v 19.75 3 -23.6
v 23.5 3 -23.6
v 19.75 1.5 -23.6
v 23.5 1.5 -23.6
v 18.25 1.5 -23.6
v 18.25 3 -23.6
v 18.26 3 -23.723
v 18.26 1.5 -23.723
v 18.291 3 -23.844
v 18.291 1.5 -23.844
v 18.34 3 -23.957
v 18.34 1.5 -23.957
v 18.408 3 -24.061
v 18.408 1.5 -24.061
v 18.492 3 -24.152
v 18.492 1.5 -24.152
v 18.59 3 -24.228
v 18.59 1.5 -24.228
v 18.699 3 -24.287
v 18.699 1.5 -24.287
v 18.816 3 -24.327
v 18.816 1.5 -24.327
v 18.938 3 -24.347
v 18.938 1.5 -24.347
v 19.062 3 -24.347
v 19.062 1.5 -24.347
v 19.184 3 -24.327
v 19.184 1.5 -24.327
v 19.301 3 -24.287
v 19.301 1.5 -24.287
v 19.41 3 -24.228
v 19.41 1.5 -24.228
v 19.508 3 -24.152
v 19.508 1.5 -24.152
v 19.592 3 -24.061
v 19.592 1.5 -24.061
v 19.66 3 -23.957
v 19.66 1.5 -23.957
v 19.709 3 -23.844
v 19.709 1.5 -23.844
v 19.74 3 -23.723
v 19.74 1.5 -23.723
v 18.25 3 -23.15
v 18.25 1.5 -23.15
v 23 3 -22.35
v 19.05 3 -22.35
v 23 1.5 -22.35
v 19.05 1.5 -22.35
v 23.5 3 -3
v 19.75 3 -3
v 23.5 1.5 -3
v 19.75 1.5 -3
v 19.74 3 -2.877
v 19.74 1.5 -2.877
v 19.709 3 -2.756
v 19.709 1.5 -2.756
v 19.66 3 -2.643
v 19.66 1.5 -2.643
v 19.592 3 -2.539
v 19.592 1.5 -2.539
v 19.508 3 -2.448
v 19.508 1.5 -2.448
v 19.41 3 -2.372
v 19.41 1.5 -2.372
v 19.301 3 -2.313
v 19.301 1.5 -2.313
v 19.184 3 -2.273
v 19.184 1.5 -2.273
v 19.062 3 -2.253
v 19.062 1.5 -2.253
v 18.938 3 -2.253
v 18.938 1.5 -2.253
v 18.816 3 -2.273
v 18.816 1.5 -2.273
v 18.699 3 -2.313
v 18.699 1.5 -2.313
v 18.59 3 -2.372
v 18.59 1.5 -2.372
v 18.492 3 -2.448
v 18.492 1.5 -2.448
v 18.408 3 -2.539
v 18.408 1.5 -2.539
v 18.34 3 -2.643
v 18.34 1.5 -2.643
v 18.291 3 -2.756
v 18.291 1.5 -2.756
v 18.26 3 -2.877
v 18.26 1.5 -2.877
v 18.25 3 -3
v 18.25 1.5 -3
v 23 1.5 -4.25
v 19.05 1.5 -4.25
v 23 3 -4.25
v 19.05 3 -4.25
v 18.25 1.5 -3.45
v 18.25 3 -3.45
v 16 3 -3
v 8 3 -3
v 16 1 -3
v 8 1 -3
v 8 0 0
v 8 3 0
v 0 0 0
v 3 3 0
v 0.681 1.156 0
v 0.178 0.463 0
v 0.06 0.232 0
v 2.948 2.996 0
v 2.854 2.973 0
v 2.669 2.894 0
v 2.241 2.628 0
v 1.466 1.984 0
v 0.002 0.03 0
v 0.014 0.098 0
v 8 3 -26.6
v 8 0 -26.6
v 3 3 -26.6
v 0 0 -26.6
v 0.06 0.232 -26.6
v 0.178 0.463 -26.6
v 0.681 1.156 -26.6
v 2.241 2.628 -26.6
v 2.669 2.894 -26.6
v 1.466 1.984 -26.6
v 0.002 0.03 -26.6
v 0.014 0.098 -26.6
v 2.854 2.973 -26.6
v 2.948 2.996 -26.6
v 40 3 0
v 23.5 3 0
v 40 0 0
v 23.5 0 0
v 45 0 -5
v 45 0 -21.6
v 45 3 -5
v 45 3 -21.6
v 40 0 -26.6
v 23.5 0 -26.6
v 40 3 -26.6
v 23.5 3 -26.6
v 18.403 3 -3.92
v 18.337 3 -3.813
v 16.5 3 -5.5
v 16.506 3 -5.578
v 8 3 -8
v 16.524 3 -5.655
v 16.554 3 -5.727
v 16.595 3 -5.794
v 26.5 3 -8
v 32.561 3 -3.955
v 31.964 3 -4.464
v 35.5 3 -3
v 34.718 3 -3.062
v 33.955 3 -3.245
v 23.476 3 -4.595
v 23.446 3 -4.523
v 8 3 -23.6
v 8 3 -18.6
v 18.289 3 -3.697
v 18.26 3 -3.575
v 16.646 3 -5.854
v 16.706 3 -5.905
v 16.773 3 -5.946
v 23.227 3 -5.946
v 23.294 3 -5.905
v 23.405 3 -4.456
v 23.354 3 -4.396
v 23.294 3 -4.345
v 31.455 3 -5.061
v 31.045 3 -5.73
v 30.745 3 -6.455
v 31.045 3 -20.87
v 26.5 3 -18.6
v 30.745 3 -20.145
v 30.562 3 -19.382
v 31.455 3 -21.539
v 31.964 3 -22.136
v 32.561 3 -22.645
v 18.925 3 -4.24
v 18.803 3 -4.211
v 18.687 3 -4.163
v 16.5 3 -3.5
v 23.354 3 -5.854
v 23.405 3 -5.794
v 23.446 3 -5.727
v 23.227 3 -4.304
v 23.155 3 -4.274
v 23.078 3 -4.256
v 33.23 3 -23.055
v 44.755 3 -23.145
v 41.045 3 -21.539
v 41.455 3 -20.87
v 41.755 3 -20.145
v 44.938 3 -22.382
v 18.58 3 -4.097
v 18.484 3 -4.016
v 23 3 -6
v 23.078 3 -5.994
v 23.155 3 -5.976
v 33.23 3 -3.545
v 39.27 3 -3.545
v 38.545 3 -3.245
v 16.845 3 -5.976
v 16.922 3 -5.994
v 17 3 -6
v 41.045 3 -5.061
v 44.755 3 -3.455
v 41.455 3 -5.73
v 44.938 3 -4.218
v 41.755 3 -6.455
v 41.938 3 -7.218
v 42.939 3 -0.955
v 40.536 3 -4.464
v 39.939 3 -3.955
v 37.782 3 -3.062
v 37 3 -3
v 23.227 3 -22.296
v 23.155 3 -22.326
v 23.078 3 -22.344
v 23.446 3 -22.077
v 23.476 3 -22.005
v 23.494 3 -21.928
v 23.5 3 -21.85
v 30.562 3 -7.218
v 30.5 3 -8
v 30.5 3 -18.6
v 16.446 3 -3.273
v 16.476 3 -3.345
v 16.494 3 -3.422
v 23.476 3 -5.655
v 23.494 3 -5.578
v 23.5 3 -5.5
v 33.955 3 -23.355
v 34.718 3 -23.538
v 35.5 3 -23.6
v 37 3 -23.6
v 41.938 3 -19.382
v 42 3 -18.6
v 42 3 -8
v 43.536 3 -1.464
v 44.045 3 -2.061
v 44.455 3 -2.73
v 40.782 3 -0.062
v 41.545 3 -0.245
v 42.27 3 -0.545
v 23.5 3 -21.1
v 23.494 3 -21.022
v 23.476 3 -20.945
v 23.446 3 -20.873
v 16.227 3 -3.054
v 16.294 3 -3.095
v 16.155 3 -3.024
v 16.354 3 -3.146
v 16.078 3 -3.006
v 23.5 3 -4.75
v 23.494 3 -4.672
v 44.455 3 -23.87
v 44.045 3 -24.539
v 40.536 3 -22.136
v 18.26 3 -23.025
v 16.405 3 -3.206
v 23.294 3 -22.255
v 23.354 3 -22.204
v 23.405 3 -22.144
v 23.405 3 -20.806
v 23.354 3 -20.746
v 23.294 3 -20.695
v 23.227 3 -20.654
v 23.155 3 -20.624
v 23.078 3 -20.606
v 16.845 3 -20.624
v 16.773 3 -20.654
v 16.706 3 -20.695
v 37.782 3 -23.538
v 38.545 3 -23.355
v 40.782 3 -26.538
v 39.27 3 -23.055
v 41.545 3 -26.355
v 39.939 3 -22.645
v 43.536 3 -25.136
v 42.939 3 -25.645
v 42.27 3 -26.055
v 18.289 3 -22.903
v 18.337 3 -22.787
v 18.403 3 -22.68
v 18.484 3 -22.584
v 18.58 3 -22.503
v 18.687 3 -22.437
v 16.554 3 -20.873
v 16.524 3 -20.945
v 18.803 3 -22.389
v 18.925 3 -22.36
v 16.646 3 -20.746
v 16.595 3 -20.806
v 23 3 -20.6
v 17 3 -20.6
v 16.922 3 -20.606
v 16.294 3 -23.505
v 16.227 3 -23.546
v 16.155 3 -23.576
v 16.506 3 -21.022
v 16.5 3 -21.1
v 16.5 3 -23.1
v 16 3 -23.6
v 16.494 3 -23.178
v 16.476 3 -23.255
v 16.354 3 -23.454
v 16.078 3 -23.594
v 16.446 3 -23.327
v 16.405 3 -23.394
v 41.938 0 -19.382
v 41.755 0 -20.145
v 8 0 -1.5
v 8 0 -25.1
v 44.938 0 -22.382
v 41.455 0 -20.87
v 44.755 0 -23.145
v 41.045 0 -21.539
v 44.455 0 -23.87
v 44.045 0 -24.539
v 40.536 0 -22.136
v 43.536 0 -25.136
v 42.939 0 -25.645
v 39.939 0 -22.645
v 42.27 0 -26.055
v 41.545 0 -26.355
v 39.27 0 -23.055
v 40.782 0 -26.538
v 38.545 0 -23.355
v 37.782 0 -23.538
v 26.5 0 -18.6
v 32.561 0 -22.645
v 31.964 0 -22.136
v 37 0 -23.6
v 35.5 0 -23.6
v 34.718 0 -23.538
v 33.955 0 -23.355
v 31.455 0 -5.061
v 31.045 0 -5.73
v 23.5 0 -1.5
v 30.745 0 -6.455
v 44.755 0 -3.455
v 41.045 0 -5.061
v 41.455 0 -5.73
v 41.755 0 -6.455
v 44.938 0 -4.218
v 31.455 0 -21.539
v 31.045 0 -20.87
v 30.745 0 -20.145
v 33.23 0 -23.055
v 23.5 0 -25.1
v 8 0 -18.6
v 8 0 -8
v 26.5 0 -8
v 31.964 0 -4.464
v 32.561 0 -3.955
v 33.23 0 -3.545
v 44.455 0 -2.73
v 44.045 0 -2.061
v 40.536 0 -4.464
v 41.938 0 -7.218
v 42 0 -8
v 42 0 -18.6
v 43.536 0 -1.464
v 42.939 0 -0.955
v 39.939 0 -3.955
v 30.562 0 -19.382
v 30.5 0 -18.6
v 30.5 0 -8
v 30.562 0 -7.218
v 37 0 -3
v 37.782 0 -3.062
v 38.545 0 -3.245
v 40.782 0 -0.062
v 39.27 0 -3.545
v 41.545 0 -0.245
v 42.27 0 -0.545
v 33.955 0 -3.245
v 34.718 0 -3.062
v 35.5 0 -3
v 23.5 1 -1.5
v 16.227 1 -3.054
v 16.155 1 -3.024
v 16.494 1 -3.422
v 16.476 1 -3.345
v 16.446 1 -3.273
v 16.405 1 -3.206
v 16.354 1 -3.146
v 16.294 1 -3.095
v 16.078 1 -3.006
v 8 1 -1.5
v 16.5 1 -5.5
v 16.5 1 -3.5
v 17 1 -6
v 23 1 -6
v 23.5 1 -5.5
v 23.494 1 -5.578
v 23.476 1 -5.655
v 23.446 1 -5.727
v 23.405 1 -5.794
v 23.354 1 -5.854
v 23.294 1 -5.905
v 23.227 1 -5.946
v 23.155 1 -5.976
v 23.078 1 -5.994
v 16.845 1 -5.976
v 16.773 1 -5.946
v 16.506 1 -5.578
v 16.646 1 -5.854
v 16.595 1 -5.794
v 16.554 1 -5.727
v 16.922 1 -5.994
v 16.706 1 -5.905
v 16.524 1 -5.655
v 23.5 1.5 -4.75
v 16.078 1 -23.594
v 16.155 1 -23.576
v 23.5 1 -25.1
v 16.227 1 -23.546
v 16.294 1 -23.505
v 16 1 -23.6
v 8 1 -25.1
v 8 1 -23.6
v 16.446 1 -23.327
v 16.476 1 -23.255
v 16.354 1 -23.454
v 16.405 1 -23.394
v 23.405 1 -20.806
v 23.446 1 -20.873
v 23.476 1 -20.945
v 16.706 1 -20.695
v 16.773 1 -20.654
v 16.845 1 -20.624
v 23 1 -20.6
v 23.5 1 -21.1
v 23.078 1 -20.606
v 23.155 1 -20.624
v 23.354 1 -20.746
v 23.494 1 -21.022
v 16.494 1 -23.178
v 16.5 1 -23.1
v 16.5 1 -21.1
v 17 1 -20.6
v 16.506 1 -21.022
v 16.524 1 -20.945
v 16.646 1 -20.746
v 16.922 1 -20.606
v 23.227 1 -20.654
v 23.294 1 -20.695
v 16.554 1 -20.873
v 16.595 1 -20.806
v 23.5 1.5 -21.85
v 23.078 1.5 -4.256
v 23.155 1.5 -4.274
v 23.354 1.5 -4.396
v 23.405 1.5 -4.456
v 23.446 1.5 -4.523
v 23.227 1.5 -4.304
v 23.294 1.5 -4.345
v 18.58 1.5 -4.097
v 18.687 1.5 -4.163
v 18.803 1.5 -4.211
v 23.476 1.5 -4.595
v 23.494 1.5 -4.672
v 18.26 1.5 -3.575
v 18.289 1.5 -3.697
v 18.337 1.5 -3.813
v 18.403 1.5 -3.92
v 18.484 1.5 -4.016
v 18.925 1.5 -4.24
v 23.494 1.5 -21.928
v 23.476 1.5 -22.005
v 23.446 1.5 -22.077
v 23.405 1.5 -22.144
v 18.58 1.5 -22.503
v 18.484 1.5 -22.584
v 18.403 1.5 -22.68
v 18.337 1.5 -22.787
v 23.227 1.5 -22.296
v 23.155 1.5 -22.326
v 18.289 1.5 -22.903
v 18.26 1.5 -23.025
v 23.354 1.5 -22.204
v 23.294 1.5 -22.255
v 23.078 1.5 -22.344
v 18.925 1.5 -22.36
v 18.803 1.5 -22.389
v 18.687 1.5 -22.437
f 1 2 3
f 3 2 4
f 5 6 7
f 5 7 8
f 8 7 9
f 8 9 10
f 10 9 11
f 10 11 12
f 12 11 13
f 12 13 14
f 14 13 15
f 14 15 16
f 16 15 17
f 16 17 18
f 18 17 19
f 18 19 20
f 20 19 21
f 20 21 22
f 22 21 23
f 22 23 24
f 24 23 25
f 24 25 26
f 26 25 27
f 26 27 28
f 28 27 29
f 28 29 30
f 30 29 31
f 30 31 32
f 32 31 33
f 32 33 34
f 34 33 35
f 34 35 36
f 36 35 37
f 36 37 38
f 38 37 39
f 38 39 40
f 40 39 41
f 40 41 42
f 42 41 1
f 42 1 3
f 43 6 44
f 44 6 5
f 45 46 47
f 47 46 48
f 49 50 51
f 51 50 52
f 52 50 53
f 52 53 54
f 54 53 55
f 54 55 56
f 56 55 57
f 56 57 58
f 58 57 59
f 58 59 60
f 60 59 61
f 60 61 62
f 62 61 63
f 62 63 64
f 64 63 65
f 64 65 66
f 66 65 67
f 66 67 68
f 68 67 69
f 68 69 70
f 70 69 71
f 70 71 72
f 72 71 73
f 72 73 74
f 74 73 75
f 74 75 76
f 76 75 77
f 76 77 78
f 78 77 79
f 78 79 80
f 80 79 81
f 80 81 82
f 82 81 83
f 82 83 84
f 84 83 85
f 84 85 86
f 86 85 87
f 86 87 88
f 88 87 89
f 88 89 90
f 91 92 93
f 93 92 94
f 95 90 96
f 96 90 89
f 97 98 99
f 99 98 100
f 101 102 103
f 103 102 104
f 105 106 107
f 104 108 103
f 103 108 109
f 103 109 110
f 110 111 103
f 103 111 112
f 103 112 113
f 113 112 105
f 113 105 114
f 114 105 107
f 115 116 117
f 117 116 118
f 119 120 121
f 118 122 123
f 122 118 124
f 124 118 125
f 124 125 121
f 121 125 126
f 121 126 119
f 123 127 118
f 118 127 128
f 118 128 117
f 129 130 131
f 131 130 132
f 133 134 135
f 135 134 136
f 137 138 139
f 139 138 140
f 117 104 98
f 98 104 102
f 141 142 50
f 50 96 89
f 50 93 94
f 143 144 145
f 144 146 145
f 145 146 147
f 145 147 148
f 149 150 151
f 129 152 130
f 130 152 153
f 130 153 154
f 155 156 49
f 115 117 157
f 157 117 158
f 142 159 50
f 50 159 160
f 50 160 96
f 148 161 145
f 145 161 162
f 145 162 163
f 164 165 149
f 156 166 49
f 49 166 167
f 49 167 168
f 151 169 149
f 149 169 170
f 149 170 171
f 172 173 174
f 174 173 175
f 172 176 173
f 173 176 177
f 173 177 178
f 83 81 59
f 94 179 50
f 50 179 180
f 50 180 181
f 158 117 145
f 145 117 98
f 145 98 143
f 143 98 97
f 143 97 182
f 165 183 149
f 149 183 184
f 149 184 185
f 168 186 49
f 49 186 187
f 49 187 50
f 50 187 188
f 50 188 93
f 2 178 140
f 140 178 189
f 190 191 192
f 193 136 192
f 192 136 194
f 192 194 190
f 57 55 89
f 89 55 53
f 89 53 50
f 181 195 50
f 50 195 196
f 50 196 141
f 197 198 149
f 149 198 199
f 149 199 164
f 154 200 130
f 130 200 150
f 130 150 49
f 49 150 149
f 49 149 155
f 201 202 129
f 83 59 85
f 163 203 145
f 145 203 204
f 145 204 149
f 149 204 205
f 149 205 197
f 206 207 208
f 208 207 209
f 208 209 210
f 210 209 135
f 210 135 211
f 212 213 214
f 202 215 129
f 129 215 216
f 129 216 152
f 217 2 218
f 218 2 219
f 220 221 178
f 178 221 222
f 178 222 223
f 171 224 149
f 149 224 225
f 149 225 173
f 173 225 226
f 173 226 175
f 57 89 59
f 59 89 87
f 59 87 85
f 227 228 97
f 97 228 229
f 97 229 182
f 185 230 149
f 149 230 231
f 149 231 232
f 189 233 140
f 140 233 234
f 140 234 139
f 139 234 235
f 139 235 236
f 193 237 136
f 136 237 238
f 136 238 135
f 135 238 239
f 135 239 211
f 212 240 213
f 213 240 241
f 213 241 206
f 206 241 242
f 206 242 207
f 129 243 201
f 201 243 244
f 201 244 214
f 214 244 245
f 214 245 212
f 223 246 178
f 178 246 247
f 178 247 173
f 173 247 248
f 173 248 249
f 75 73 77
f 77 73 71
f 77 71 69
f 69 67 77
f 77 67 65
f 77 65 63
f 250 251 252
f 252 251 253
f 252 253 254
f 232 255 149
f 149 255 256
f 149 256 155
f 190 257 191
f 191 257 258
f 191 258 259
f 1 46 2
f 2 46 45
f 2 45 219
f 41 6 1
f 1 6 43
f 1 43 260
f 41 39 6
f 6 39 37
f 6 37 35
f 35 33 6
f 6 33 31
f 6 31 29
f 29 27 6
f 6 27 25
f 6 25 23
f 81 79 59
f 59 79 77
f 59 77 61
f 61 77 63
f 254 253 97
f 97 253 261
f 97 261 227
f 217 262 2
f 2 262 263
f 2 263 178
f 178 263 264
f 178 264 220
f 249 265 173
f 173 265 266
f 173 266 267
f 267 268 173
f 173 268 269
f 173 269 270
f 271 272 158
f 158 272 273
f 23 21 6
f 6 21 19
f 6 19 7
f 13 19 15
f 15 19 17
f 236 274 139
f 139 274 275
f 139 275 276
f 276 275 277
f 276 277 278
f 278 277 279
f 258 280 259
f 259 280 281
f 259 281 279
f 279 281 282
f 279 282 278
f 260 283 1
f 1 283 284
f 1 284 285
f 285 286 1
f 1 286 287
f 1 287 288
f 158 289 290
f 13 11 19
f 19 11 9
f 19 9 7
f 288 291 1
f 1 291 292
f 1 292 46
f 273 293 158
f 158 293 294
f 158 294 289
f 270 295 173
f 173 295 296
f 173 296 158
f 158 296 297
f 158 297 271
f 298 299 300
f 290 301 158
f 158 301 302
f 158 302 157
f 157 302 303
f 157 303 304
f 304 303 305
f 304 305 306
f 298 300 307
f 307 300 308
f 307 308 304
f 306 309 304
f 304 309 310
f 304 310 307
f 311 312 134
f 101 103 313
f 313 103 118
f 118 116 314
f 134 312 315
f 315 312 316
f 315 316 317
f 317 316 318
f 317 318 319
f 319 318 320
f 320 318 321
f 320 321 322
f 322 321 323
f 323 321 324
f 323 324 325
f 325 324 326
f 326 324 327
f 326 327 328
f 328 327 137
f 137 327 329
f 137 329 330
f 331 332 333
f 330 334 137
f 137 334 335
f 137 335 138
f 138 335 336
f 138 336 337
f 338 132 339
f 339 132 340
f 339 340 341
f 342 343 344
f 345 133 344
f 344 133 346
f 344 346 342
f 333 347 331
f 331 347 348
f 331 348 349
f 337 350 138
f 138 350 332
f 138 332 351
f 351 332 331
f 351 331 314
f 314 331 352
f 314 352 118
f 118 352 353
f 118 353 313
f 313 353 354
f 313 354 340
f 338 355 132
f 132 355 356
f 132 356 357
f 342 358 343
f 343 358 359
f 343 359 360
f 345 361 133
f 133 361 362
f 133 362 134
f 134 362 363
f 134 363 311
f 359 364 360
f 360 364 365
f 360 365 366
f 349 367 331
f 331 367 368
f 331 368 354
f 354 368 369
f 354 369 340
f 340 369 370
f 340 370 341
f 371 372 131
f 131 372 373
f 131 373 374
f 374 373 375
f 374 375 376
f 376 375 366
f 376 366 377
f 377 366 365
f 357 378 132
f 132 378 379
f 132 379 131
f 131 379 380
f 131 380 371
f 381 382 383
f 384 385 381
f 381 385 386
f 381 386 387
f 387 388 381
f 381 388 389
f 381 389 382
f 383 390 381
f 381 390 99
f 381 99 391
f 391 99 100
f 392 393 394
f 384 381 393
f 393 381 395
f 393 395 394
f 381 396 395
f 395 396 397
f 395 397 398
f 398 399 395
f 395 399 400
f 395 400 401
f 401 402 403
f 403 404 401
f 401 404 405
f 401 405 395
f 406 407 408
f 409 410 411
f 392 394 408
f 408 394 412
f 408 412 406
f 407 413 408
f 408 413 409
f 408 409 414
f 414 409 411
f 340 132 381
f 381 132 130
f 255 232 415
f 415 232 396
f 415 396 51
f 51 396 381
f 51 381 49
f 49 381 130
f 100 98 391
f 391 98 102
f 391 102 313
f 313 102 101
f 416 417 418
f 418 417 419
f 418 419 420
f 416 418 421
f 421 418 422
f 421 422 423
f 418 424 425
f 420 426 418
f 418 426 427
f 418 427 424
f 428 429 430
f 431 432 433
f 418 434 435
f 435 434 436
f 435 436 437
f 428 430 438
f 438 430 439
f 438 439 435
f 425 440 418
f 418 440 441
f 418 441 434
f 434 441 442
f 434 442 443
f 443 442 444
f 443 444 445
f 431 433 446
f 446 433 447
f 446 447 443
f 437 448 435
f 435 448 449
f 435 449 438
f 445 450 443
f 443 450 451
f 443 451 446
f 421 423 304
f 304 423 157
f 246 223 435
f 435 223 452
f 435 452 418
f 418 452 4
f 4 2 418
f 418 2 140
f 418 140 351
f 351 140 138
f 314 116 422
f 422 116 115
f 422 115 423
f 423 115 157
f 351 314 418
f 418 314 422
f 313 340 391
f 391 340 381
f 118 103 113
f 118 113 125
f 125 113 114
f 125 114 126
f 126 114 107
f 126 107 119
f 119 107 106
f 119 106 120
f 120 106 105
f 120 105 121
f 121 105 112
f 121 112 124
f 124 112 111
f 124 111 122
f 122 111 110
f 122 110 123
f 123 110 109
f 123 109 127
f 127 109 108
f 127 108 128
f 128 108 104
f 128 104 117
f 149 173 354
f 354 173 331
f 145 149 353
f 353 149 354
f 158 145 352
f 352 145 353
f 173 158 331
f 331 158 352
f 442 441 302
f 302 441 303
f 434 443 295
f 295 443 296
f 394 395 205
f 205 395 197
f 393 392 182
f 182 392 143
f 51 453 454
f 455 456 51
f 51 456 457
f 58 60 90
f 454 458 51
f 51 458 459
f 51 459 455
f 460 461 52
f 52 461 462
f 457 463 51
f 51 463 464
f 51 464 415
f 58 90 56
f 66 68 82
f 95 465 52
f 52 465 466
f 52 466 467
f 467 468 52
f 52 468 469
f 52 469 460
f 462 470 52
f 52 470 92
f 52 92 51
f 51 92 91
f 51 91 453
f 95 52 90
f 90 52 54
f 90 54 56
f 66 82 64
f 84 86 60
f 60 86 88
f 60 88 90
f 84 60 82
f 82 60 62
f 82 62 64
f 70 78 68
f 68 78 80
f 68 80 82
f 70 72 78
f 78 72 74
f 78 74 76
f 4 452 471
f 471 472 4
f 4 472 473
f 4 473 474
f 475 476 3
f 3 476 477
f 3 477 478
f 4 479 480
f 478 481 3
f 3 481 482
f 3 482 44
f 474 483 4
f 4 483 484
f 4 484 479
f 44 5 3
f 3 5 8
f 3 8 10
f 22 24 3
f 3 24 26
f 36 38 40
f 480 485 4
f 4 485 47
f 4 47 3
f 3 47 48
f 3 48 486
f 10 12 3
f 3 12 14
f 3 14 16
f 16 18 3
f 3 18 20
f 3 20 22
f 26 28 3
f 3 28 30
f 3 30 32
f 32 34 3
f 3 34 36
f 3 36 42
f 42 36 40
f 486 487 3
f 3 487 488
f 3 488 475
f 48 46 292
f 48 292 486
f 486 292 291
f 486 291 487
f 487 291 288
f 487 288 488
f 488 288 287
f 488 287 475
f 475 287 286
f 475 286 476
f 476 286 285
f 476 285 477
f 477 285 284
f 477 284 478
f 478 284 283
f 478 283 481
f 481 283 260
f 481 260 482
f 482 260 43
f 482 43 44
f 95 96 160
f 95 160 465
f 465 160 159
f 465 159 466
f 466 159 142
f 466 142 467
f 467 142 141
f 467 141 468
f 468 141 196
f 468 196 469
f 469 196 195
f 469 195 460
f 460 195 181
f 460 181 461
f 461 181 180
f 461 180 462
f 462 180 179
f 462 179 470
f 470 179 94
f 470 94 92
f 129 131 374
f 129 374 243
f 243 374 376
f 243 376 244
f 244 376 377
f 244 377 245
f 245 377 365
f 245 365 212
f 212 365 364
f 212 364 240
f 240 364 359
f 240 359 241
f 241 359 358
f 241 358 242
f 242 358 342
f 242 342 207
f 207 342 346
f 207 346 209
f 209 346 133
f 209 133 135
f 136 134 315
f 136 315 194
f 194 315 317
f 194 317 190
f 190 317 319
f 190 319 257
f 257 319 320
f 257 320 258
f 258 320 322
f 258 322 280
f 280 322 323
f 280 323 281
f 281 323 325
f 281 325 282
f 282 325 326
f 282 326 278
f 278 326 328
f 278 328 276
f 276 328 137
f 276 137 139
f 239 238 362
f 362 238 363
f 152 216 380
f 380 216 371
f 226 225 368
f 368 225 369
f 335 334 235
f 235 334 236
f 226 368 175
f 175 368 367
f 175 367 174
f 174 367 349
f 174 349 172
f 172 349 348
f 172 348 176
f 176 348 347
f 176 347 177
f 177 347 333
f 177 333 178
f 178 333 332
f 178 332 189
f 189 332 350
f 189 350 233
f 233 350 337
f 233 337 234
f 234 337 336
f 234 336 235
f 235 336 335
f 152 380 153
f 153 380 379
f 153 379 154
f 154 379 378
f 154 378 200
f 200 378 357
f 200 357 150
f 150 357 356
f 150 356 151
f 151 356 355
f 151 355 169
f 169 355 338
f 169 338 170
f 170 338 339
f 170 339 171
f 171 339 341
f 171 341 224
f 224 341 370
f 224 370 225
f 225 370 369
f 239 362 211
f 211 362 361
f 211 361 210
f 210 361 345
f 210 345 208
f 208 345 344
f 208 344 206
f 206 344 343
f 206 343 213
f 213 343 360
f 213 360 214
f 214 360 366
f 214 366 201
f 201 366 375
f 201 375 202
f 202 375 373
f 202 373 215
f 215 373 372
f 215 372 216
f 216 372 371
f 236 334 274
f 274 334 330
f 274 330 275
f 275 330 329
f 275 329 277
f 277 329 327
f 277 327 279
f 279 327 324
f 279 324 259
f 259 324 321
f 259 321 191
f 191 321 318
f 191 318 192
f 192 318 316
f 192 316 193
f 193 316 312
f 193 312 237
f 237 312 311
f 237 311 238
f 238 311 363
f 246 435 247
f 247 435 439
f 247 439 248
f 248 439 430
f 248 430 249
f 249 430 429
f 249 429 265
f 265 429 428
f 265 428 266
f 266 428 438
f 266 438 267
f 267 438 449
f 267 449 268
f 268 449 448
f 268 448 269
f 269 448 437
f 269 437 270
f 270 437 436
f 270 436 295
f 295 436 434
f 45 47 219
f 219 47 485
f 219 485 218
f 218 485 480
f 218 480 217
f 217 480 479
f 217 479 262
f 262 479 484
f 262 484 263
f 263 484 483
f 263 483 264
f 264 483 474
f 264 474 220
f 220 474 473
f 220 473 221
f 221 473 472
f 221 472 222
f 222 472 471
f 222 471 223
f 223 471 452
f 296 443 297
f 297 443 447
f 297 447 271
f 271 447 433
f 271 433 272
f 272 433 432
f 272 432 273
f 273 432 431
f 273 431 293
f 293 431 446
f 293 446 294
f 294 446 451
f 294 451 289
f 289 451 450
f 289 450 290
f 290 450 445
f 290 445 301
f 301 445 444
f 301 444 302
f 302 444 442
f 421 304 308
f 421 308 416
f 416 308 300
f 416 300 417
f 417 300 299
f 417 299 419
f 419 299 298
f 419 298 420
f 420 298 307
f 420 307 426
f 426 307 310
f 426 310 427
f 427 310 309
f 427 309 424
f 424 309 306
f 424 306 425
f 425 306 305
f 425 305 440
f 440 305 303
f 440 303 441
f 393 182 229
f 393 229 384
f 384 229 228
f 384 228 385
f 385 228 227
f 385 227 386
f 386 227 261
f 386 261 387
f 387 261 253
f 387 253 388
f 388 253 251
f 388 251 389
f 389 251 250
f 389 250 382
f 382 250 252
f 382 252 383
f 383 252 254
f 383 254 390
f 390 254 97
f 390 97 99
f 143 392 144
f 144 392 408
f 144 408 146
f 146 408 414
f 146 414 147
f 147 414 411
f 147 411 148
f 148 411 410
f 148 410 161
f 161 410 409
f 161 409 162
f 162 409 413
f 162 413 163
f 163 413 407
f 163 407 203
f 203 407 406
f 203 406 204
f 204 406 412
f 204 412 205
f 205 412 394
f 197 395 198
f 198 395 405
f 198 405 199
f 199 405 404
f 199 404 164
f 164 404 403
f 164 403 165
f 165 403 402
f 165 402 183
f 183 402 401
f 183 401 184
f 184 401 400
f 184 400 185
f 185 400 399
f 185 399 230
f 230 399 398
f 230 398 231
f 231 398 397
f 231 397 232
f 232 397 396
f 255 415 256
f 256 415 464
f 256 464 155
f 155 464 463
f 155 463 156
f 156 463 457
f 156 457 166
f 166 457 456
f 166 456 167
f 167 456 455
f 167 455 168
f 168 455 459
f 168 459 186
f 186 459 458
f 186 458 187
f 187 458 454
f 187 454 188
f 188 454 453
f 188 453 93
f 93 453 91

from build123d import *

# Parameters (mm, degrees)
SKETCH1_W                      = 45
SKETCH1_H                      = 26.6
BOSS_EXTRUDE1_DEPTH            = 3
SKETCH3_W                      = 15.5
SKETCH3_H                      = 3
CUT_EXTRUDE1_DEPTH             = 2
SKETCH4_W                      = 15.5
SKETCH4_H                      = 1.5
CUT_EXTRUDE2_DEPTH             = 53.312140082
FILLET1_SIZE                   = 3
BOSS_EXTRUDE2_REACH            = 54.36
SKETCH5_R                      = 0.75
SKETCH6_W                      = 18.5
SKETCH6_H                      = 10.6
CUT_EXTRUDE3_DEPTH             = 53.359908383
CUT_EXTRUDE4_DEPTH             = 2
CUT_EXTRUDE5_REACH             = 52.901
SKETCH8_W                      = 5.25
SKETCH8_H                      = 0.5
CUT_EXTRUDE5_DIRECTION_2_REACH = 52.901
CUT_EXTRUDE6_REACH             = 52.901
SKETCH9_W                      = 5.25
SKETCH9_H                      = 0.5
CUT_EXTRUDE6_DIRECTION_2_REACH = 52.901
FILLET2_R                      = 0.8
FILLET3_R                      = 5
SKETCH10_W                     = 11.5
SKETCH10_H                     = 20.6
CUT_EXTRUDE7_DEPTH             = 53.359908383
FILLET4_R                      = 5
FILLET5_R                      = 0.5


with BuildPart() as part:
    # Sketch1 → Boss-Extrude1 (new body)
    with BuildSketch(Plane(origin=(0, 0, 0), x_dir=(1, 0, 0), z_dir=(0, 1, 0))):
        with Locations((22.5, 13.3)):
            Rectangle(SKETCH1_W, SKETCH1_H)
    extrude(amount=BOSS_EXTRUDE1_DEPTH)

    # Sketch3 → Cut-Extrude1 (cut)
    with BuildSketch(Plane(origin=(0, 3, 0), x_dir=(1, 0, 0), z_dir=(0, 1, 0))):
        with Locations((15.75, 25.1)):
            Rectangle(SKETCH3_W, SKETCH3_H)
        with Locations((15.75, 1.5)):
            Rectangle(SKETCH3_W, SKETCH3_H)
    extrude(amount=-CUT_EXTRUDE1_DEPTH, mode=Mode.SUBTRACT)

    # Sketch4 → Cut-Extrude2 (cut, through all)
    with BuildSketch(Plane(origin=(0, 1, 0), x_dir=(1, 0, 0), z_dir=(0, 1, 0))):
        with Locations((15.75, 0.75)):
            Rectangle(SKETCH4_W, SKETCH4_H)
        with Locations((15.75, 25.85)):
            Rectangle(SKETCH4_W, SKETCH4_H)
    extrude(amount=-CUT_EXTRUDE2_DEPTH, mode=Mode.SUBTRACT)

    # Fillet1
    # a fillet whose section is not a circle: 3 mm, written as the material it takes off along each edge
    with BuildSketch(Plane(origin=(0, 3, -34.1), x_dir=(1, 0, 0), z_dir=(0, 0, 1))) as fillet1_piece_1:
        with BuildLine():
            Bezier((FILLET1_SIZE, 0), (0, 0), (0, -FILLET1_SIZE), weights=[1, 0.212132034, 1])
            Line((0, -FILLET1_SIZE), (0, 0))
            Line((0, 0), (FILLET1_SIZE, 0))
        make_face()
    extrude(amount=41.6, mode=Mode.SUBTRACT)

    # Sketch5 → Boss-Extrude2 (add, up to next)
    with BuildSketch(Plane(origin=(0, 3, 0), x_dir=(1, 0, 0), z_dir=(0, 1, 0)), mode=Mode.PRIVATE) as boss_extrude2_sk1:
        with Locations((19, 3)):
            Circle(SKETCH5_R)
    boss_extrude2_tool1 = extrude(boss_extrude2_sk1.sketch, amount=-BOSS_EXTRUDE2_REACH, mode=Mode.PRIVATE) - part.part
    # Sketch5 → Boss-Extrude2 (add, up to next)
    with BuildSketch(Plane(origin=(0, 3, 0), x_dir=(1, 0, 0), z_dir=(0, 1, 0)), mode=Mode.PRIVATE) as boss_extrude2_sk2:
        with Locations((19, 23.6)):
            Circle(SKETCH5_R)
    boss_extrude2_tool2 = extrude(boss_extrude2_sk2.sketch, amount=-BOSS_EXTRUDE2_REACH, mode=Mode.PRIVATE) - part.part
    add(boss_extrude2_tool1.solids().sort_by_distance((19, 3, -3))[0])
    add(boss_extrude2_tool2.solids().sort_by_distance((19, 3, -23.6))[0])

    # Sketch6 → Cut-Extrude3 (cut, through all)
    with BuildSketch(Plane(origin=(0, 3, 0), x_dir=(1, 0, 0), z_dir=(0, 1, 0))):
        with Locations((17.25, 13.3)):
            Rectangle(SKETCH6_W, SKETCH6_H)
    extrude(amount=-CUT_EXTRUDE3_DEPTH, mode=Mode.SUBTRACT)

    # Sketch7 → Cut-Extrude4 (cut)
    with BuildSketch(Plane(origin=(0, 3, 0), x_dir=(1, 0, 0), z_dir=(0, 1, 0))):
        Polygon((18.25, 3), (16.5, 3), (16.5, 6), (23.5, 6), (23.5, 4.25), (18.25, 4.25), align=None)
        Polygon((18.25, 22.35), (18.25, 23.6), (16.5, 23.6), (16.5, 20.6), (23.5, 20.6), (23.5, 22.35), align=None)
    extrude(amount=-CUT_EXTRUDE4_DEPTH, mode=Mode.SUBTRACT)

    # Sketch8 → Cut-Extrude5 (cut, up to next)
    with BuildSketch(Plane.XY.offset(-3), mode=Mode.PRIVATE) as cut_extrude5_sk1:
        with Locations((20.875, 1.25)):
            Rectangle(SKETCH8_W, SKETCH8_H)
    cut_extrude5_tool1 = extrude(cut_extrude5_sk1.sketch, amount=-CUT_EXTRUDE5_REACH, mode=Mode.PRIVATE) & part.part
    add(cut_extrude5_tool1.solids().sort_by_distance((20.875, 1.25, -3))[0], mode=Mode.SUBTRACT)

    # Sketch8 → Cut-Extrude5 direction 2 (cut, up to next)
    with BuildSketch(Plane.XY.offset(-3), mode=Mode.PRIVATE) as cut_extrude5_direction_2_sk1:
        with Locations((20.875, 1.25)):
            Rectangle(SKETCH8_W, SKETCH8_H)
    cut_extrude5_direction_2_tool1 = extrude(cut_extrude5_direction_2_sk1.sketch, amount=CUT_EXTRUDE5_DIRECTION_2_REACH, mode=Mode.PRIVATE) & part.part
    add(cut_extrude5_direction_2_tool1.solids().sort_by_distance((20.875, 1.25, -3))[0], mode=Mode.SUBTRACT)

    # Sketch9 → Cut-Extrude6 (cut, up to next)
    with BuildSketch(Plane(origin=(0, 0, -23.6), x_dir=(-1, 0, 0), z_dir=(0, 0, -1)), mode=Mode.PRIVATE) as cut_extrude6_sk1:
        with Locations((-20.875, 1.25)):
            Rectangle(SKETCH9_W, SKETCH9_H)
    cut_extrude6_tool1 = extrude(cut_extrude6_sk1.sketch, amount=-CUT_EXTRUDE6_REACH, mode=Mode.PRIVATE) & part.part
    add(cut_extrude6_tool1.solids().sort_by_distance((20.875, 1.25, -23.6))[0], mode=Mode.SUBTRACT)

    # Sketch9 → Cut-Extrude6 direction 2 (cut, up to next)
    with BuildSketch(Plane(origin=(0, 0, -23.6), x_dir=(-1, 0, 0), z_dir=(0, 0, -1)), mode=Mode.PRIVATE) as cut_extrude6_direction_2_sk1:
        with Locations((-20.875, 1.25)):
            Rectangle(SKETCH9_W, SKETCH9_H)
    cut_extrude6_direction_2_tool1 = extrude(cut_extrude6_direction_2_sk1.sketch, amount=CUT_EXTRUDE6_DIRECTION_2_REACH, mode=Mode.PRIVATE) & part.part
    add(cut_extrude6_direction_2_tool1.solids().sort_by_distance((20.875, 1.25, -23.6))[0], mode=Mode.SUBTRACT)

    # Fillet2
    fillet2_edges = [part.edges().sort_by_distance(p)[0] for p in [
        (18.25, 2.25, -4.25),
        (18.25, 2.25, -22.35),
    ]]
    fillet(fillet2_edges, radius=FILLET2_R)

    # Fillet3
    fillet3_edges = [part.edges().sort_by_distance(p)[0] for p in [
        (45, 1.5, -26.6),
        (45, 1.5, 0),
    ]]
    fillet(fillet3_edges, radius=FILLET3_R)

    # Sketch10 → Cut-Extrude7 (cut, through all)
    with BuildSketch(Plane(origin=(0, 3, 0), x_dir=(1, 0, 0), z_dir=(0, 1, 0))):
        with Locations((36.25, 13.3)):
            Rectangle(SKETCH10_W, SKETCH10_H)
    extrude(amount=-CUT_EXTRUDE7_DEPTH, mode=Mode.SUBTRACT)

    # Fillet4
    fillet4_edges = [part.edges().sort_by_distance(p)[0] for p in [
        (42, 1.5, -23.6),
        (42, 1.5, -3),
        (30.5, 1.5, -3),
        (30.5, 1.5, -23.6),
    ]]
    fillet(fillet4_edges, radius=FILLET4_R)

    # Fillet5
    fillet5_edges = [part.edges().sort_by_distance(p)[0] for p in [
        (23.5, 2, -6),
        (16.5, 2, -6),
        (16.5, 2, -3),
        (16.5, 2, -23.6),
        (16.5, 2, -20.6),
        (23.5, 2, -20.6),
        (23.5, 2.25, -4.25),
        (23.5, 2.25, -22.35),
    ]]
    fillet(fillet5_edges, radius=FILLET5_R)


solid = part.part
